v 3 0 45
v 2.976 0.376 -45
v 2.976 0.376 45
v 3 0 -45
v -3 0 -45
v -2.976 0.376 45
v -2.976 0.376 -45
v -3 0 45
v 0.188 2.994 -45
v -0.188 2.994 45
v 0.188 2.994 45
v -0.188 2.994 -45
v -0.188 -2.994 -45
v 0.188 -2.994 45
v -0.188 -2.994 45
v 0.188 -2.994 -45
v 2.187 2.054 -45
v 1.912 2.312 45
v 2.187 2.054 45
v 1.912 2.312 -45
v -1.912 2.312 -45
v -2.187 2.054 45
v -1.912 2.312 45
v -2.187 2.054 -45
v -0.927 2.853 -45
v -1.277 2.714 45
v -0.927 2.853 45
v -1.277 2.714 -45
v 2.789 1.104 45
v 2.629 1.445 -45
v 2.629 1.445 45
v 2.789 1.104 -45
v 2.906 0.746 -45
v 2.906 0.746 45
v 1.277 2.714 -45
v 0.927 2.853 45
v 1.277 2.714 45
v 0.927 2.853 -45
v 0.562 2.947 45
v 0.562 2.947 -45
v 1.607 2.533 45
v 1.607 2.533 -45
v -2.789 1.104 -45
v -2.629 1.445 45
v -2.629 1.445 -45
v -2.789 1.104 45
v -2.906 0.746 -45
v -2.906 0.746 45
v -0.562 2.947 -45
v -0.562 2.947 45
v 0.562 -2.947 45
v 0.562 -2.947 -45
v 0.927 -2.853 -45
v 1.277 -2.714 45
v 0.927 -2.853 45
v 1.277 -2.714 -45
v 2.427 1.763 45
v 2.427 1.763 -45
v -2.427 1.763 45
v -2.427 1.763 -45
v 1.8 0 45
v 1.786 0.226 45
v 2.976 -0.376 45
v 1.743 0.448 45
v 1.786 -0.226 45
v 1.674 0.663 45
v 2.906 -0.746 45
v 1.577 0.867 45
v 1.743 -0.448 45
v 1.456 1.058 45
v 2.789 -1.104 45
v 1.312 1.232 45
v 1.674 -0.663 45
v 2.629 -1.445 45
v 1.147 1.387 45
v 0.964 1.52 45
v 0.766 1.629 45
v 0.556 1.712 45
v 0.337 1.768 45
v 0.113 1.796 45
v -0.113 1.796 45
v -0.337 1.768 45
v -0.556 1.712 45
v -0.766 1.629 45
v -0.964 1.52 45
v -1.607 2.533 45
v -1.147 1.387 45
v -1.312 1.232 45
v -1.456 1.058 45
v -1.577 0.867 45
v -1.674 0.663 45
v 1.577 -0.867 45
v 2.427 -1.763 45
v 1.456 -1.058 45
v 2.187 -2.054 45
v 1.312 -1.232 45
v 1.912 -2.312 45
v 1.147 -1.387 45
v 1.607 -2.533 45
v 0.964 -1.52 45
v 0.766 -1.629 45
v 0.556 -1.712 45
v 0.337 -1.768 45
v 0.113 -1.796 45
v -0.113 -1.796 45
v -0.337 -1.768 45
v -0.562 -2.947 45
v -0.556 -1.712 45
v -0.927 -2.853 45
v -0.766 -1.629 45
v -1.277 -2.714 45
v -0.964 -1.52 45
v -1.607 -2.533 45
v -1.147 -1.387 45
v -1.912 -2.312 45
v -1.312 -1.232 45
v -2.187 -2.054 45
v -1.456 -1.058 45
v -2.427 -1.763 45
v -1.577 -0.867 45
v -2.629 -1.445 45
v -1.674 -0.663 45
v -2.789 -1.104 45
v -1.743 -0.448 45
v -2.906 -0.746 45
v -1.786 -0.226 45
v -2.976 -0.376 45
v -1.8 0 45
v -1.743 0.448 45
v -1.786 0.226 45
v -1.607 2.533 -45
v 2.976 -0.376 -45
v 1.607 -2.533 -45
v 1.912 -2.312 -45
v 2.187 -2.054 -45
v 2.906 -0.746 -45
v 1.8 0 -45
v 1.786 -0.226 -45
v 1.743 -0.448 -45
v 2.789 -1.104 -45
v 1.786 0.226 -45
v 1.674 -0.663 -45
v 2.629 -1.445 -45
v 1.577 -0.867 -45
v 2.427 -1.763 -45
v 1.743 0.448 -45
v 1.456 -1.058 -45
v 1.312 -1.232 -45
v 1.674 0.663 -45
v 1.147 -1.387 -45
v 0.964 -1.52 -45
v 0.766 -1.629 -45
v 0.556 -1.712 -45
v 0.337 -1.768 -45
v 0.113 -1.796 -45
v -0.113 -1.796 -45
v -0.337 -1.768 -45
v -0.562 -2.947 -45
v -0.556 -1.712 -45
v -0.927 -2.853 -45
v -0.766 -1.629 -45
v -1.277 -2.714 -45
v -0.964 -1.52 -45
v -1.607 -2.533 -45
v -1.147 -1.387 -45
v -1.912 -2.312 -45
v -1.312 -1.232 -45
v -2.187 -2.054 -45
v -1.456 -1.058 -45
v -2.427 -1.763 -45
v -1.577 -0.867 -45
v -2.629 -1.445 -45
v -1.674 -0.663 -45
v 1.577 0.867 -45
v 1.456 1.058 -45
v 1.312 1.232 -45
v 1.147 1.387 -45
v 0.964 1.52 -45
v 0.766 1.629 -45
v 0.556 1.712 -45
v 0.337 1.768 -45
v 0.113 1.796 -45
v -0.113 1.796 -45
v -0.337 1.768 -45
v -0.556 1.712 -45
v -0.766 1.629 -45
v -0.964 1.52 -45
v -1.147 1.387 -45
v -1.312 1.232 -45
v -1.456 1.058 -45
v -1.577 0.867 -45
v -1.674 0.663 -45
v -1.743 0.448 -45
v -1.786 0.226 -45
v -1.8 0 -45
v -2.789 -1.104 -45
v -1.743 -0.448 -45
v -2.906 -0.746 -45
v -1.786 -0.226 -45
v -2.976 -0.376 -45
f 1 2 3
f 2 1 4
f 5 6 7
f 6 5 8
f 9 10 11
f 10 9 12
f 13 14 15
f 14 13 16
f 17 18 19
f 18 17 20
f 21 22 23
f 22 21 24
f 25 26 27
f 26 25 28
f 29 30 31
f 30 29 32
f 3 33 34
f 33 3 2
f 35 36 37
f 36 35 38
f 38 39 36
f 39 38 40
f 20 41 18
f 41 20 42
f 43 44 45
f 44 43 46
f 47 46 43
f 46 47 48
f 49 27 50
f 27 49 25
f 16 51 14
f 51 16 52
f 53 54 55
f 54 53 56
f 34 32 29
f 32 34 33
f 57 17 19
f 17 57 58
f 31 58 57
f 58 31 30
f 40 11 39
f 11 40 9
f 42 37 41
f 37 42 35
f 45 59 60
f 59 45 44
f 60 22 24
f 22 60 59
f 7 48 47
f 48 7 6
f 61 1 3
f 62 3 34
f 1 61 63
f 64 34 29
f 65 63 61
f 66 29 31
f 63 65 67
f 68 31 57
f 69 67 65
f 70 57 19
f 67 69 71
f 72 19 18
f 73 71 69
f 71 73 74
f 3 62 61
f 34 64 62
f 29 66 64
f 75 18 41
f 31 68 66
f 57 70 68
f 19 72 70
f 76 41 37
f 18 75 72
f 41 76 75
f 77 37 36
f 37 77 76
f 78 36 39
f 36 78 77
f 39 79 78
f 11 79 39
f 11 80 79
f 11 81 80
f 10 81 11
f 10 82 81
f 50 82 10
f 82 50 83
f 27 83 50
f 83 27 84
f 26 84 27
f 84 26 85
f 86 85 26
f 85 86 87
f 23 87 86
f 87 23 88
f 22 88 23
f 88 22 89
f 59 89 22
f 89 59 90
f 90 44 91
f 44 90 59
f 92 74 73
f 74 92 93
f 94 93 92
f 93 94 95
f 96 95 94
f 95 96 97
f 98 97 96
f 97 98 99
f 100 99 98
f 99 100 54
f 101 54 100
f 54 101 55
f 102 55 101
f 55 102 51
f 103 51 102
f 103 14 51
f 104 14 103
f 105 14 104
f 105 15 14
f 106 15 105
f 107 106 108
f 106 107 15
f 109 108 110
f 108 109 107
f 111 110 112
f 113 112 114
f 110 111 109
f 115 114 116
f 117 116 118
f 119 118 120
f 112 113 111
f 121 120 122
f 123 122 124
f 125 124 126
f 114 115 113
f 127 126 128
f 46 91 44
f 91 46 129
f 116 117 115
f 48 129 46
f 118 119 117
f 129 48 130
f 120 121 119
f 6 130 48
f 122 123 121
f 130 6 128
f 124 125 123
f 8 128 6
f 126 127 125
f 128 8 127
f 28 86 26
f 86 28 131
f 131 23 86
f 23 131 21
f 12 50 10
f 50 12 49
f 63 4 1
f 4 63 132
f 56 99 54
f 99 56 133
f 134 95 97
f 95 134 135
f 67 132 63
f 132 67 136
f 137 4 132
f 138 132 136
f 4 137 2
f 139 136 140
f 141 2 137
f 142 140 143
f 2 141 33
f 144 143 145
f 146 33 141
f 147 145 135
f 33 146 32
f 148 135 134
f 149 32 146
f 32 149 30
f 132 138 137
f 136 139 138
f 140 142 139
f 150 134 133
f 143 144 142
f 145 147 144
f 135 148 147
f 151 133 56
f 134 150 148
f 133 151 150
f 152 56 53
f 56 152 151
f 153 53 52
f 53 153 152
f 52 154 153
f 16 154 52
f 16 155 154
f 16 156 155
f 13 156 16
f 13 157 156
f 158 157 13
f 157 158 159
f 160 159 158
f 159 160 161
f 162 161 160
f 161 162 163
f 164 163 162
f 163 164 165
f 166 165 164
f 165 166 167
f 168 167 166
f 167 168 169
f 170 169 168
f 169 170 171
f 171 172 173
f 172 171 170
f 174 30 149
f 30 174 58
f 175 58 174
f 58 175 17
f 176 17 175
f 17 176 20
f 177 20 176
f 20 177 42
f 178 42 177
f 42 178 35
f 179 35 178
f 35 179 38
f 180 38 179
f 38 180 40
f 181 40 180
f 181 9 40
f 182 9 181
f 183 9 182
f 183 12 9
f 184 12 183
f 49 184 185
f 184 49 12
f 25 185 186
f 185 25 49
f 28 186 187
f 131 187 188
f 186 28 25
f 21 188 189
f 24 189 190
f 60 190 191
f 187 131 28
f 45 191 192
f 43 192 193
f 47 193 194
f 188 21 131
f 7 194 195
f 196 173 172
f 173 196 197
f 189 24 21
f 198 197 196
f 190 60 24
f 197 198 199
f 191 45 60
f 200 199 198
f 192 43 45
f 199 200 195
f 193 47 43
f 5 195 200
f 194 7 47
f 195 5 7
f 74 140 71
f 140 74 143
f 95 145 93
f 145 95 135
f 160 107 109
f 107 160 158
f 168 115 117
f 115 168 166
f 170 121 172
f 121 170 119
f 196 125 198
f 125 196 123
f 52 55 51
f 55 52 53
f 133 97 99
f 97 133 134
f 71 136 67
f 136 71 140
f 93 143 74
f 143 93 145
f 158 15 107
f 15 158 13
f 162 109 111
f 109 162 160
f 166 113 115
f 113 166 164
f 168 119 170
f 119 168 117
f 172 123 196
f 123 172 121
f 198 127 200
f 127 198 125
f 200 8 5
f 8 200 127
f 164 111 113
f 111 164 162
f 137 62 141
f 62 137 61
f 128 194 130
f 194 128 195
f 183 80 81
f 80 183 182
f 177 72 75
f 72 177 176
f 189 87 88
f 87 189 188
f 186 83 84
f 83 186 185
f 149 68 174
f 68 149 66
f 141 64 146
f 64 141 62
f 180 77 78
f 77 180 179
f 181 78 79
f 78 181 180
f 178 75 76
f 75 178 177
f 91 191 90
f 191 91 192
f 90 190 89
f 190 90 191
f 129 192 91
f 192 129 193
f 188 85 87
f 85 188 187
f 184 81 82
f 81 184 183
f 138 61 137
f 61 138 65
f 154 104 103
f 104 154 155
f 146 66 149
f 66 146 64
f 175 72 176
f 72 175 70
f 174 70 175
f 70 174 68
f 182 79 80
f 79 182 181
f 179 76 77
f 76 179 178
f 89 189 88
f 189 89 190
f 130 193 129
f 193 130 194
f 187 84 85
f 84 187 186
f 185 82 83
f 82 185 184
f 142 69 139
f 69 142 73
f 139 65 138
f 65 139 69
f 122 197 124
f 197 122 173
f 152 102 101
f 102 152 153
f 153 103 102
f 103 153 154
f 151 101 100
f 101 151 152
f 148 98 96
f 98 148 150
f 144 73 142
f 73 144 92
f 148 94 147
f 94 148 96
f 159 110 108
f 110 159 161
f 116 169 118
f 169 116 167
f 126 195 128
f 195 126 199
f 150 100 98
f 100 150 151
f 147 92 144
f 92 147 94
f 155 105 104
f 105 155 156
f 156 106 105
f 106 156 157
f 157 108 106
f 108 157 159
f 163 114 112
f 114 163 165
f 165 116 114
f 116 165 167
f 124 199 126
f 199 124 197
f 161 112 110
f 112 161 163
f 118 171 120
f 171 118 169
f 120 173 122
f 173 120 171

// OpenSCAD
$fn = 50;


difference() {
	union() {
		translate(v = [0, 0, -45.0000000000]) {
			cylinder(h = 90, r = 3.0000000000);
		}
	}
	union() {
		translate(v = [0, 0, -100.0000000000]) {
			cylinder(h = 200, r = 1.8000000000);
		}
	}
}
